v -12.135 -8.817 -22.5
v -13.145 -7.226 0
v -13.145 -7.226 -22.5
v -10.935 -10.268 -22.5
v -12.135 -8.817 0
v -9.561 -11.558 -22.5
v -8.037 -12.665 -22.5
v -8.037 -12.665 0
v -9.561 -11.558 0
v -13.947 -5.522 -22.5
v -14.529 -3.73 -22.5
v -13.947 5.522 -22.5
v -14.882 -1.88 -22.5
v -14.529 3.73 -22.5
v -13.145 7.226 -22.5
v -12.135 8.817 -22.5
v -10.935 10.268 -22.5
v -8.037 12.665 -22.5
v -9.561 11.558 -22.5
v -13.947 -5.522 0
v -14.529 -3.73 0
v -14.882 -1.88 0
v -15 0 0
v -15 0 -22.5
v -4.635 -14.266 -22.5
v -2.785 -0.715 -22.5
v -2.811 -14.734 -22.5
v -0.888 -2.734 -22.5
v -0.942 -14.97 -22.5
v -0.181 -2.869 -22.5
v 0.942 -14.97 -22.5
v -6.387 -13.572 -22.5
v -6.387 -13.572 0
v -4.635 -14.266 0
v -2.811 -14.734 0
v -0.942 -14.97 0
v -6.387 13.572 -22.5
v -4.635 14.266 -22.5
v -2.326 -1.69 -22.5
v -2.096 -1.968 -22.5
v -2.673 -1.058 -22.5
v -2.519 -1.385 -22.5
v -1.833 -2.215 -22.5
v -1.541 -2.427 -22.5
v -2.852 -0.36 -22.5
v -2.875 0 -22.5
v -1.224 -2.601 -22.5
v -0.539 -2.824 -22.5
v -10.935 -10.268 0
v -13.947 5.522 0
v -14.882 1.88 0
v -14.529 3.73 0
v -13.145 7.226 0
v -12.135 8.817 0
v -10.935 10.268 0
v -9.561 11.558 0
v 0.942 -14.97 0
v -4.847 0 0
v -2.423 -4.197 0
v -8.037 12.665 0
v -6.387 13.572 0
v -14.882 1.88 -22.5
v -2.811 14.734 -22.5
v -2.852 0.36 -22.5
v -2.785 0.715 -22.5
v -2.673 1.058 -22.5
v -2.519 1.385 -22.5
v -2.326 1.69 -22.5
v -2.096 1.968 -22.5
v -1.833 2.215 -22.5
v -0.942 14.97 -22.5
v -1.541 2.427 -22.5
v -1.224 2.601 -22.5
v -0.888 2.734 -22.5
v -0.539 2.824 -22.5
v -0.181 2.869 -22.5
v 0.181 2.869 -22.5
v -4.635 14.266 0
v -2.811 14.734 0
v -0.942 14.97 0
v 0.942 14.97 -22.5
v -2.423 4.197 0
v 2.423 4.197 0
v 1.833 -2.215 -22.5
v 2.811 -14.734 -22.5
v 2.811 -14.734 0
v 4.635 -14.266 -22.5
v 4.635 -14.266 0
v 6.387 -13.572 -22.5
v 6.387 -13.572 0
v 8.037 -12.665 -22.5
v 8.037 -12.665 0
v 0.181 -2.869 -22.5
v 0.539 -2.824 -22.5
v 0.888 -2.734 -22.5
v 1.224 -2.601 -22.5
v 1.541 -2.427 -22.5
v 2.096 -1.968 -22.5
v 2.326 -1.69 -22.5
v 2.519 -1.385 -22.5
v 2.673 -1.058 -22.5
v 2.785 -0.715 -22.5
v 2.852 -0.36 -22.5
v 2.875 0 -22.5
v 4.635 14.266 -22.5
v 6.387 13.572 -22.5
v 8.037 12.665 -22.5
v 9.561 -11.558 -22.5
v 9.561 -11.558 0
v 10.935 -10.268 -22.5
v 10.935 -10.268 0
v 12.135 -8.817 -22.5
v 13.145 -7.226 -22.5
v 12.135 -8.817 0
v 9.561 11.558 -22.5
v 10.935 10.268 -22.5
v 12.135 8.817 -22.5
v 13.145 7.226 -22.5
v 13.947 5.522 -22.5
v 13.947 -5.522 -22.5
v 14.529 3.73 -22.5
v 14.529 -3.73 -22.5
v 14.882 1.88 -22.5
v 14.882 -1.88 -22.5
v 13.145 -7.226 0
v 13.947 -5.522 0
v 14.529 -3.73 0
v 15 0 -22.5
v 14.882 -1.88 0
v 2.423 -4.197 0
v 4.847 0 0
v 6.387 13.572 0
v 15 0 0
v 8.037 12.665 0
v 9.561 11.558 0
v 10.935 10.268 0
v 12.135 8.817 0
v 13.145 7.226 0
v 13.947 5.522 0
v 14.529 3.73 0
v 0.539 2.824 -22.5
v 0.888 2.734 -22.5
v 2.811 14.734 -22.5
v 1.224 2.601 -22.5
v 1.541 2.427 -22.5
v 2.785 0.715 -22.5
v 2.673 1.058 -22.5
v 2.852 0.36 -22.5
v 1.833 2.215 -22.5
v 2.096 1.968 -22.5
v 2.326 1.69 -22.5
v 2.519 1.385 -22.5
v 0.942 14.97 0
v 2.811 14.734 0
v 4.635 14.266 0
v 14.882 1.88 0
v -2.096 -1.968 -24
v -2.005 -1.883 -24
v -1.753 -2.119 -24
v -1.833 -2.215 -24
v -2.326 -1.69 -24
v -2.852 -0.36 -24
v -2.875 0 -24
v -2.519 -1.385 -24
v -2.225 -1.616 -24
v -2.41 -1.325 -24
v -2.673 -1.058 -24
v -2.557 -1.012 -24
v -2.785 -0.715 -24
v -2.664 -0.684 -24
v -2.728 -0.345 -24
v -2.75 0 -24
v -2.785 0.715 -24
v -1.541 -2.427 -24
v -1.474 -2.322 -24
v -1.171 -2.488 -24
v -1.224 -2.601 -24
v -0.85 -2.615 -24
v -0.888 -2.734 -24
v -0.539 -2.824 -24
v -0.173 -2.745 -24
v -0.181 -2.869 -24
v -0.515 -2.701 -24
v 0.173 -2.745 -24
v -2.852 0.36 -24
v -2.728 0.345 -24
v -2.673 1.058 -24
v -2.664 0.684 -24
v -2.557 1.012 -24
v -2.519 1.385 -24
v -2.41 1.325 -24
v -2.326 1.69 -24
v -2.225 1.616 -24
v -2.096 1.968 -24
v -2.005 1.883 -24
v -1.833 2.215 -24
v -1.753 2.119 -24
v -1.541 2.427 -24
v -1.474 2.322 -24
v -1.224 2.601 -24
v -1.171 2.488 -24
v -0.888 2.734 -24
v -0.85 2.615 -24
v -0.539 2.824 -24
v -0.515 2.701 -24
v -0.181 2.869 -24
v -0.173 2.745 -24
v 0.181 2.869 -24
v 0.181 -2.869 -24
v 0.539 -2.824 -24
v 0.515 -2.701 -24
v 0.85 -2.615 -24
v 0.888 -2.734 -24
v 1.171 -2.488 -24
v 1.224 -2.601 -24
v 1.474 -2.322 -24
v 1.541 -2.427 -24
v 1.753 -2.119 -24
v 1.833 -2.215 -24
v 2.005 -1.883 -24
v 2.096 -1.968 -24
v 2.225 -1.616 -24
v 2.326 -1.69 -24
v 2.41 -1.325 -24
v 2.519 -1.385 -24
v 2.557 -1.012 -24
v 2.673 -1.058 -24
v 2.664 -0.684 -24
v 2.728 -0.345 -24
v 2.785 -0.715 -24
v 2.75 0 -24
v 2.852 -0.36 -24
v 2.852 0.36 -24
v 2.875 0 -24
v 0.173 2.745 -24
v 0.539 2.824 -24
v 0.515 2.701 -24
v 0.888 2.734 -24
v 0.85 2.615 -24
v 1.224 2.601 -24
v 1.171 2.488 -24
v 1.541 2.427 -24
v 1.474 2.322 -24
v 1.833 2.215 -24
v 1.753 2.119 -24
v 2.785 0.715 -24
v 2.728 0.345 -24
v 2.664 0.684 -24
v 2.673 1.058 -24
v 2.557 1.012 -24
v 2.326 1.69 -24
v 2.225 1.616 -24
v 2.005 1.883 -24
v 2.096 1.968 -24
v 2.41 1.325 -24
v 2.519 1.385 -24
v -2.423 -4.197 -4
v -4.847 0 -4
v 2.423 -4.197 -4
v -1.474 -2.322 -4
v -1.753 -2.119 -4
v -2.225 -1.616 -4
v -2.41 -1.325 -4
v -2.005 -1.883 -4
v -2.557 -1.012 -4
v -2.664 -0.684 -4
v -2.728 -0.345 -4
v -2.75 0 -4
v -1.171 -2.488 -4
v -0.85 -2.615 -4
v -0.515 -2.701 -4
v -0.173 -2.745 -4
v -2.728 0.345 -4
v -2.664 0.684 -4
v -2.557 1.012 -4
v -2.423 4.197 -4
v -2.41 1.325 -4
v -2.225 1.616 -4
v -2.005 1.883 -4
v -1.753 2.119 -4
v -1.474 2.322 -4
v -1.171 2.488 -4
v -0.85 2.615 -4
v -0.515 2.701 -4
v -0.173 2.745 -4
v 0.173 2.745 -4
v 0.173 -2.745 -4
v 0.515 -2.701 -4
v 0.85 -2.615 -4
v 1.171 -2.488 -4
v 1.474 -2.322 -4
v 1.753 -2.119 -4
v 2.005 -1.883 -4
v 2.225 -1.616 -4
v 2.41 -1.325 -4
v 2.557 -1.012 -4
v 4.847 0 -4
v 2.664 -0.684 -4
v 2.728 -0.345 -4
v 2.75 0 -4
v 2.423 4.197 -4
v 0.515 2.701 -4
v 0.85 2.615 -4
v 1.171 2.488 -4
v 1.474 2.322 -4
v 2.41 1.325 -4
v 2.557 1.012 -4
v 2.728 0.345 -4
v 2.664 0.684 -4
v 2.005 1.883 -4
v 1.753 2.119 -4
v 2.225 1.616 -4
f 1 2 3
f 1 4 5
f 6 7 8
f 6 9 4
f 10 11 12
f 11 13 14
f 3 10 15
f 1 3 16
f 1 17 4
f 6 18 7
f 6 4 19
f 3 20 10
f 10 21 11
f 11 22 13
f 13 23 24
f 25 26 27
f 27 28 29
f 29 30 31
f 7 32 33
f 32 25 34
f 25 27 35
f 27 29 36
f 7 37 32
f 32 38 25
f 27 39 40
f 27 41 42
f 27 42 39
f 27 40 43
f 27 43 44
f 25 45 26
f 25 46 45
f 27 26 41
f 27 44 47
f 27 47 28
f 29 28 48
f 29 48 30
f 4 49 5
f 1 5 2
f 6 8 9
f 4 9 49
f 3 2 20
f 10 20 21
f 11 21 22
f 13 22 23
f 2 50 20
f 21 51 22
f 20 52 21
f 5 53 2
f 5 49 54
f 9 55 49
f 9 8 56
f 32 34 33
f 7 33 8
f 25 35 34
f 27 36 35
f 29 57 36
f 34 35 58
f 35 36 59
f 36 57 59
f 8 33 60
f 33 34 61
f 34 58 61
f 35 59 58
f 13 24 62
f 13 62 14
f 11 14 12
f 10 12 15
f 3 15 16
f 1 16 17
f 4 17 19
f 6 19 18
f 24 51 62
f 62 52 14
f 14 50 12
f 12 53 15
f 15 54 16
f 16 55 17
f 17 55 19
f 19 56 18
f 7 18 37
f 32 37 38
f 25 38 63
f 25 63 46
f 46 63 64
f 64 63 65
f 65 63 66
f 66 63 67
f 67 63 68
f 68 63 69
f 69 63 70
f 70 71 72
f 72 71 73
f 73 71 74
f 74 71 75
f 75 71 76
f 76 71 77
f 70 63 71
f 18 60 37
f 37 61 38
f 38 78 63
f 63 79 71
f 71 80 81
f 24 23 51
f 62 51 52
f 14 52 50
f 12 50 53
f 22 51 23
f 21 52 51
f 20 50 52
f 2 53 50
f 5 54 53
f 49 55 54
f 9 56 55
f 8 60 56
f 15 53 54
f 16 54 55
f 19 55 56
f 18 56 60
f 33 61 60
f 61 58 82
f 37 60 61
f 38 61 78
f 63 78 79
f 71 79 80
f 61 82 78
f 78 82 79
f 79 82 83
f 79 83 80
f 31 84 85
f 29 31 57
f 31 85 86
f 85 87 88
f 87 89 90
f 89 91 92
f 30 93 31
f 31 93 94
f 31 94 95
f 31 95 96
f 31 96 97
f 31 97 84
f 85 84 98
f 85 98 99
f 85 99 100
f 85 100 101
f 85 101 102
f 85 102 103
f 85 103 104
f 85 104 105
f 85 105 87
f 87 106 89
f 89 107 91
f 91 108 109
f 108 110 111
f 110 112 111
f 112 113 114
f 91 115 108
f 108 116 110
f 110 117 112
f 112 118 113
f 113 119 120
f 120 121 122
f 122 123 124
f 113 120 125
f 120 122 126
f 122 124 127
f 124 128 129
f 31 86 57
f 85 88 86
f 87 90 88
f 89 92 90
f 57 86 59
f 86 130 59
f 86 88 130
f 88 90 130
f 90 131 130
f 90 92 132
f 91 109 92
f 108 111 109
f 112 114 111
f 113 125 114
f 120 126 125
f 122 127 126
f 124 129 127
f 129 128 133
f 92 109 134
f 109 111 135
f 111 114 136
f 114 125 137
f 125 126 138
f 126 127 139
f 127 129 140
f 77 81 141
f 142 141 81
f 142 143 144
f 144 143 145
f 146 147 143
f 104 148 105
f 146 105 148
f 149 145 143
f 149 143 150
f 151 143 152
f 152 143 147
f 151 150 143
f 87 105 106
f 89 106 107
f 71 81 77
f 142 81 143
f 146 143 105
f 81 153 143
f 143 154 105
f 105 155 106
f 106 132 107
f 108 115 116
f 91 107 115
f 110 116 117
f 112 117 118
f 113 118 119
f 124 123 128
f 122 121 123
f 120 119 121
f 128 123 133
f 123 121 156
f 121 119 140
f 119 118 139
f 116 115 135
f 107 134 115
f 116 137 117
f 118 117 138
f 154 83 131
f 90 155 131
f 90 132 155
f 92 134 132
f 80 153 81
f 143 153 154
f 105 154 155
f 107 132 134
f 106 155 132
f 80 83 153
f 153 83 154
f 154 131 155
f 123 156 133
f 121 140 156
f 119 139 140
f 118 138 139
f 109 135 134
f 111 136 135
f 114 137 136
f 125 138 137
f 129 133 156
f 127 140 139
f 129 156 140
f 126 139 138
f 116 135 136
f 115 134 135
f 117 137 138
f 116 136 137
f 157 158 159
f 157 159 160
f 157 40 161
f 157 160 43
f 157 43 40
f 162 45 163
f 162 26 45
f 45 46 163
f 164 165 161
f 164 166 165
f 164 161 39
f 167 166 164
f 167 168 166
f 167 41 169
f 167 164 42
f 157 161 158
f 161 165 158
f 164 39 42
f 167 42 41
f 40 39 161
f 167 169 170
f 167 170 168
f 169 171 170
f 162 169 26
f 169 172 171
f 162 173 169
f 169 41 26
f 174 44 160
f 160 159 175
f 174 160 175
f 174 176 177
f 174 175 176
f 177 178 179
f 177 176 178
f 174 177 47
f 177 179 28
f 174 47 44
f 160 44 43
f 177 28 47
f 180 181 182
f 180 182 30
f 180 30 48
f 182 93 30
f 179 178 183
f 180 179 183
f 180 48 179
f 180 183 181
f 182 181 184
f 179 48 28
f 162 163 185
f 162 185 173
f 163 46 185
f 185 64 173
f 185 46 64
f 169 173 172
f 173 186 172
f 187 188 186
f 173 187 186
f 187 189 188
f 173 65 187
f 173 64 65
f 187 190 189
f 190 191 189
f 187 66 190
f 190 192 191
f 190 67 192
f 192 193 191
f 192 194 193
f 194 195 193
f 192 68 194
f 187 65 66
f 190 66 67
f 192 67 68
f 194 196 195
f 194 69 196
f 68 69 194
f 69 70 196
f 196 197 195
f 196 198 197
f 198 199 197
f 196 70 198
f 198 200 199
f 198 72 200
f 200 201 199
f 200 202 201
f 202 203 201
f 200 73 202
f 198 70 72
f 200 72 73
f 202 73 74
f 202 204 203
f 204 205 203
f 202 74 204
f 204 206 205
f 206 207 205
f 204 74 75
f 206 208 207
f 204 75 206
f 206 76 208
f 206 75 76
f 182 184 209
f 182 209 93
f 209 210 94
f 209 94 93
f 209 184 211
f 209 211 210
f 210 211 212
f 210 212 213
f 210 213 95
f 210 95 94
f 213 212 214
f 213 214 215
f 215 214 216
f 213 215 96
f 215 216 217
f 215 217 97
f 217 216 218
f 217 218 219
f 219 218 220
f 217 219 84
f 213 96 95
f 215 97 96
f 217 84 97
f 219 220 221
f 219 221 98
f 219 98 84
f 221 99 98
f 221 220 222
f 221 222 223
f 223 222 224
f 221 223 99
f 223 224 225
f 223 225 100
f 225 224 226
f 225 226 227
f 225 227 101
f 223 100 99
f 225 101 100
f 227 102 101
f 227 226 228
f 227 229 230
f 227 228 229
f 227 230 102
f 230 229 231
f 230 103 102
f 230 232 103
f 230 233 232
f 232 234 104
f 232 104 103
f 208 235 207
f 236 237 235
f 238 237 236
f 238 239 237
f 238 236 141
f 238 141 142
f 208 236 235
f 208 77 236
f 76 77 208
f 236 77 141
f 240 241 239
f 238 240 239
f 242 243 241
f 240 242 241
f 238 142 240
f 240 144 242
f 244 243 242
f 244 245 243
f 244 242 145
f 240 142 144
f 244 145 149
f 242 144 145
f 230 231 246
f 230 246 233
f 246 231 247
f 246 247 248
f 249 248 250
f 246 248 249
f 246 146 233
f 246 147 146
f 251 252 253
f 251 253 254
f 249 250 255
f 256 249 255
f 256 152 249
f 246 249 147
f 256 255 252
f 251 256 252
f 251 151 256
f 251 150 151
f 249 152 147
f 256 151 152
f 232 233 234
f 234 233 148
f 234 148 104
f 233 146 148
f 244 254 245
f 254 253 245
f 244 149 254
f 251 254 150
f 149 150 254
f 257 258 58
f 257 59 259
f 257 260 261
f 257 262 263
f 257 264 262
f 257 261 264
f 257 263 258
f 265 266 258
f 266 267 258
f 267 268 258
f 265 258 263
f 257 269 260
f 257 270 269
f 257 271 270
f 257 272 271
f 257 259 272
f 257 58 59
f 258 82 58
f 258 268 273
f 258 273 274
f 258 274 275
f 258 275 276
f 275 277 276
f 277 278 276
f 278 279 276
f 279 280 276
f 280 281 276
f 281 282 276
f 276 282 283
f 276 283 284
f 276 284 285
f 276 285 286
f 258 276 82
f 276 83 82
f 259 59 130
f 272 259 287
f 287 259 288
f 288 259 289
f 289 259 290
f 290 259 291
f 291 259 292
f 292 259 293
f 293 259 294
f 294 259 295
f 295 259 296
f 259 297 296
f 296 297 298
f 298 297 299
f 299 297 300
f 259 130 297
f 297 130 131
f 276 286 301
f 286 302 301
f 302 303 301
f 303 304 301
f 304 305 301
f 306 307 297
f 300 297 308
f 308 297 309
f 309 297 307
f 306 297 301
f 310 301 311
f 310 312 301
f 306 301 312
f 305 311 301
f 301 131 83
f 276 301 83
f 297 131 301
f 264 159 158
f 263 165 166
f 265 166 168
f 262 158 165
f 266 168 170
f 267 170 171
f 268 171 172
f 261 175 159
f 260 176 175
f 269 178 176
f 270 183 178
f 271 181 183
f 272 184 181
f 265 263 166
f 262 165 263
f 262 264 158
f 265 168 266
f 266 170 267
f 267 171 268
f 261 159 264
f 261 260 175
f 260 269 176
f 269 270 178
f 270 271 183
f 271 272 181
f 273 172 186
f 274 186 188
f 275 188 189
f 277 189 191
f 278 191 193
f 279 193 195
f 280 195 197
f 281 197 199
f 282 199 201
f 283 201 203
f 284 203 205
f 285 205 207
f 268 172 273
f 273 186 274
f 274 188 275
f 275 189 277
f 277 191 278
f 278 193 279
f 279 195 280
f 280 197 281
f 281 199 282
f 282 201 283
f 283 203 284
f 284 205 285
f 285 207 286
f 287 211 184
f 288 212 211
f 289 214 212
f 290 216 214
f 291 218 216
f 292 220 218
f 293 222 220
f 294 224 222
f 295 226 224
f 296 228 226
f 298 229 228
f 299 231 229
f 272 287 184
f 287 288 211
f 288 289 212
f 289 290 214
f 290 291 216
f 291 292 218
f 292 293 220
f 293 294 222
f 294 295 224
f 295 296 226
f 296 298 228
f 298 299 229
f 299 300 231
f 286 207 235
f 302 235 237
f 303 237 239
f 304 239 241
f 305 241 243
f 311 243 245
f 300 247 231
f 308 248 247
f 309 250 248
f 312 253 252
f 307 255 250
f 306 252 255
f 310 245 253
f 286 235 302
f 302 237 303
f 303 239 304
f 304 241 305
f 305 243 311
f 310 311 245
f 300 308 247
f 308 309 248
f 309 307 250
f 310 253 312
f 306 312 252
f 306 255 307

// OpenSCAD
$fn = 50;

difference() {
	union() {
		translate(v = [0, 0, -22.5]) {
			cylinder(h = 22.5, r = 15.0);
		}
		#translate(v = [0, 0, -24.0]) {
			cylinder(h = 24, r = 2.875);
		}
	}
	union() {
		translate(v = [0, 0, 0]) {
			rotate(a = [0, 0, 0]) {
				difference() {
					union() {
						translate(v = [0, 0, -4]) {
							linear_extrude(height = 4) {
								polygon(points = [[4.8468, 0.0], [2.4234000000000004, 4.197451927062417], [-2.423399999999999, 4.197451927062417], [-4.8468, 5.935618106107392e-16], [-2.423400000000002, -4.197451927062416], [2.423399999999997, -4.197451927062419]]);
							}
						}
					}
					union();
				}
			}
		}
		#translate(v = [0, 0, -100.0]) {
			cylinder(h = 200, r = 2.75);
		}
	}
}
